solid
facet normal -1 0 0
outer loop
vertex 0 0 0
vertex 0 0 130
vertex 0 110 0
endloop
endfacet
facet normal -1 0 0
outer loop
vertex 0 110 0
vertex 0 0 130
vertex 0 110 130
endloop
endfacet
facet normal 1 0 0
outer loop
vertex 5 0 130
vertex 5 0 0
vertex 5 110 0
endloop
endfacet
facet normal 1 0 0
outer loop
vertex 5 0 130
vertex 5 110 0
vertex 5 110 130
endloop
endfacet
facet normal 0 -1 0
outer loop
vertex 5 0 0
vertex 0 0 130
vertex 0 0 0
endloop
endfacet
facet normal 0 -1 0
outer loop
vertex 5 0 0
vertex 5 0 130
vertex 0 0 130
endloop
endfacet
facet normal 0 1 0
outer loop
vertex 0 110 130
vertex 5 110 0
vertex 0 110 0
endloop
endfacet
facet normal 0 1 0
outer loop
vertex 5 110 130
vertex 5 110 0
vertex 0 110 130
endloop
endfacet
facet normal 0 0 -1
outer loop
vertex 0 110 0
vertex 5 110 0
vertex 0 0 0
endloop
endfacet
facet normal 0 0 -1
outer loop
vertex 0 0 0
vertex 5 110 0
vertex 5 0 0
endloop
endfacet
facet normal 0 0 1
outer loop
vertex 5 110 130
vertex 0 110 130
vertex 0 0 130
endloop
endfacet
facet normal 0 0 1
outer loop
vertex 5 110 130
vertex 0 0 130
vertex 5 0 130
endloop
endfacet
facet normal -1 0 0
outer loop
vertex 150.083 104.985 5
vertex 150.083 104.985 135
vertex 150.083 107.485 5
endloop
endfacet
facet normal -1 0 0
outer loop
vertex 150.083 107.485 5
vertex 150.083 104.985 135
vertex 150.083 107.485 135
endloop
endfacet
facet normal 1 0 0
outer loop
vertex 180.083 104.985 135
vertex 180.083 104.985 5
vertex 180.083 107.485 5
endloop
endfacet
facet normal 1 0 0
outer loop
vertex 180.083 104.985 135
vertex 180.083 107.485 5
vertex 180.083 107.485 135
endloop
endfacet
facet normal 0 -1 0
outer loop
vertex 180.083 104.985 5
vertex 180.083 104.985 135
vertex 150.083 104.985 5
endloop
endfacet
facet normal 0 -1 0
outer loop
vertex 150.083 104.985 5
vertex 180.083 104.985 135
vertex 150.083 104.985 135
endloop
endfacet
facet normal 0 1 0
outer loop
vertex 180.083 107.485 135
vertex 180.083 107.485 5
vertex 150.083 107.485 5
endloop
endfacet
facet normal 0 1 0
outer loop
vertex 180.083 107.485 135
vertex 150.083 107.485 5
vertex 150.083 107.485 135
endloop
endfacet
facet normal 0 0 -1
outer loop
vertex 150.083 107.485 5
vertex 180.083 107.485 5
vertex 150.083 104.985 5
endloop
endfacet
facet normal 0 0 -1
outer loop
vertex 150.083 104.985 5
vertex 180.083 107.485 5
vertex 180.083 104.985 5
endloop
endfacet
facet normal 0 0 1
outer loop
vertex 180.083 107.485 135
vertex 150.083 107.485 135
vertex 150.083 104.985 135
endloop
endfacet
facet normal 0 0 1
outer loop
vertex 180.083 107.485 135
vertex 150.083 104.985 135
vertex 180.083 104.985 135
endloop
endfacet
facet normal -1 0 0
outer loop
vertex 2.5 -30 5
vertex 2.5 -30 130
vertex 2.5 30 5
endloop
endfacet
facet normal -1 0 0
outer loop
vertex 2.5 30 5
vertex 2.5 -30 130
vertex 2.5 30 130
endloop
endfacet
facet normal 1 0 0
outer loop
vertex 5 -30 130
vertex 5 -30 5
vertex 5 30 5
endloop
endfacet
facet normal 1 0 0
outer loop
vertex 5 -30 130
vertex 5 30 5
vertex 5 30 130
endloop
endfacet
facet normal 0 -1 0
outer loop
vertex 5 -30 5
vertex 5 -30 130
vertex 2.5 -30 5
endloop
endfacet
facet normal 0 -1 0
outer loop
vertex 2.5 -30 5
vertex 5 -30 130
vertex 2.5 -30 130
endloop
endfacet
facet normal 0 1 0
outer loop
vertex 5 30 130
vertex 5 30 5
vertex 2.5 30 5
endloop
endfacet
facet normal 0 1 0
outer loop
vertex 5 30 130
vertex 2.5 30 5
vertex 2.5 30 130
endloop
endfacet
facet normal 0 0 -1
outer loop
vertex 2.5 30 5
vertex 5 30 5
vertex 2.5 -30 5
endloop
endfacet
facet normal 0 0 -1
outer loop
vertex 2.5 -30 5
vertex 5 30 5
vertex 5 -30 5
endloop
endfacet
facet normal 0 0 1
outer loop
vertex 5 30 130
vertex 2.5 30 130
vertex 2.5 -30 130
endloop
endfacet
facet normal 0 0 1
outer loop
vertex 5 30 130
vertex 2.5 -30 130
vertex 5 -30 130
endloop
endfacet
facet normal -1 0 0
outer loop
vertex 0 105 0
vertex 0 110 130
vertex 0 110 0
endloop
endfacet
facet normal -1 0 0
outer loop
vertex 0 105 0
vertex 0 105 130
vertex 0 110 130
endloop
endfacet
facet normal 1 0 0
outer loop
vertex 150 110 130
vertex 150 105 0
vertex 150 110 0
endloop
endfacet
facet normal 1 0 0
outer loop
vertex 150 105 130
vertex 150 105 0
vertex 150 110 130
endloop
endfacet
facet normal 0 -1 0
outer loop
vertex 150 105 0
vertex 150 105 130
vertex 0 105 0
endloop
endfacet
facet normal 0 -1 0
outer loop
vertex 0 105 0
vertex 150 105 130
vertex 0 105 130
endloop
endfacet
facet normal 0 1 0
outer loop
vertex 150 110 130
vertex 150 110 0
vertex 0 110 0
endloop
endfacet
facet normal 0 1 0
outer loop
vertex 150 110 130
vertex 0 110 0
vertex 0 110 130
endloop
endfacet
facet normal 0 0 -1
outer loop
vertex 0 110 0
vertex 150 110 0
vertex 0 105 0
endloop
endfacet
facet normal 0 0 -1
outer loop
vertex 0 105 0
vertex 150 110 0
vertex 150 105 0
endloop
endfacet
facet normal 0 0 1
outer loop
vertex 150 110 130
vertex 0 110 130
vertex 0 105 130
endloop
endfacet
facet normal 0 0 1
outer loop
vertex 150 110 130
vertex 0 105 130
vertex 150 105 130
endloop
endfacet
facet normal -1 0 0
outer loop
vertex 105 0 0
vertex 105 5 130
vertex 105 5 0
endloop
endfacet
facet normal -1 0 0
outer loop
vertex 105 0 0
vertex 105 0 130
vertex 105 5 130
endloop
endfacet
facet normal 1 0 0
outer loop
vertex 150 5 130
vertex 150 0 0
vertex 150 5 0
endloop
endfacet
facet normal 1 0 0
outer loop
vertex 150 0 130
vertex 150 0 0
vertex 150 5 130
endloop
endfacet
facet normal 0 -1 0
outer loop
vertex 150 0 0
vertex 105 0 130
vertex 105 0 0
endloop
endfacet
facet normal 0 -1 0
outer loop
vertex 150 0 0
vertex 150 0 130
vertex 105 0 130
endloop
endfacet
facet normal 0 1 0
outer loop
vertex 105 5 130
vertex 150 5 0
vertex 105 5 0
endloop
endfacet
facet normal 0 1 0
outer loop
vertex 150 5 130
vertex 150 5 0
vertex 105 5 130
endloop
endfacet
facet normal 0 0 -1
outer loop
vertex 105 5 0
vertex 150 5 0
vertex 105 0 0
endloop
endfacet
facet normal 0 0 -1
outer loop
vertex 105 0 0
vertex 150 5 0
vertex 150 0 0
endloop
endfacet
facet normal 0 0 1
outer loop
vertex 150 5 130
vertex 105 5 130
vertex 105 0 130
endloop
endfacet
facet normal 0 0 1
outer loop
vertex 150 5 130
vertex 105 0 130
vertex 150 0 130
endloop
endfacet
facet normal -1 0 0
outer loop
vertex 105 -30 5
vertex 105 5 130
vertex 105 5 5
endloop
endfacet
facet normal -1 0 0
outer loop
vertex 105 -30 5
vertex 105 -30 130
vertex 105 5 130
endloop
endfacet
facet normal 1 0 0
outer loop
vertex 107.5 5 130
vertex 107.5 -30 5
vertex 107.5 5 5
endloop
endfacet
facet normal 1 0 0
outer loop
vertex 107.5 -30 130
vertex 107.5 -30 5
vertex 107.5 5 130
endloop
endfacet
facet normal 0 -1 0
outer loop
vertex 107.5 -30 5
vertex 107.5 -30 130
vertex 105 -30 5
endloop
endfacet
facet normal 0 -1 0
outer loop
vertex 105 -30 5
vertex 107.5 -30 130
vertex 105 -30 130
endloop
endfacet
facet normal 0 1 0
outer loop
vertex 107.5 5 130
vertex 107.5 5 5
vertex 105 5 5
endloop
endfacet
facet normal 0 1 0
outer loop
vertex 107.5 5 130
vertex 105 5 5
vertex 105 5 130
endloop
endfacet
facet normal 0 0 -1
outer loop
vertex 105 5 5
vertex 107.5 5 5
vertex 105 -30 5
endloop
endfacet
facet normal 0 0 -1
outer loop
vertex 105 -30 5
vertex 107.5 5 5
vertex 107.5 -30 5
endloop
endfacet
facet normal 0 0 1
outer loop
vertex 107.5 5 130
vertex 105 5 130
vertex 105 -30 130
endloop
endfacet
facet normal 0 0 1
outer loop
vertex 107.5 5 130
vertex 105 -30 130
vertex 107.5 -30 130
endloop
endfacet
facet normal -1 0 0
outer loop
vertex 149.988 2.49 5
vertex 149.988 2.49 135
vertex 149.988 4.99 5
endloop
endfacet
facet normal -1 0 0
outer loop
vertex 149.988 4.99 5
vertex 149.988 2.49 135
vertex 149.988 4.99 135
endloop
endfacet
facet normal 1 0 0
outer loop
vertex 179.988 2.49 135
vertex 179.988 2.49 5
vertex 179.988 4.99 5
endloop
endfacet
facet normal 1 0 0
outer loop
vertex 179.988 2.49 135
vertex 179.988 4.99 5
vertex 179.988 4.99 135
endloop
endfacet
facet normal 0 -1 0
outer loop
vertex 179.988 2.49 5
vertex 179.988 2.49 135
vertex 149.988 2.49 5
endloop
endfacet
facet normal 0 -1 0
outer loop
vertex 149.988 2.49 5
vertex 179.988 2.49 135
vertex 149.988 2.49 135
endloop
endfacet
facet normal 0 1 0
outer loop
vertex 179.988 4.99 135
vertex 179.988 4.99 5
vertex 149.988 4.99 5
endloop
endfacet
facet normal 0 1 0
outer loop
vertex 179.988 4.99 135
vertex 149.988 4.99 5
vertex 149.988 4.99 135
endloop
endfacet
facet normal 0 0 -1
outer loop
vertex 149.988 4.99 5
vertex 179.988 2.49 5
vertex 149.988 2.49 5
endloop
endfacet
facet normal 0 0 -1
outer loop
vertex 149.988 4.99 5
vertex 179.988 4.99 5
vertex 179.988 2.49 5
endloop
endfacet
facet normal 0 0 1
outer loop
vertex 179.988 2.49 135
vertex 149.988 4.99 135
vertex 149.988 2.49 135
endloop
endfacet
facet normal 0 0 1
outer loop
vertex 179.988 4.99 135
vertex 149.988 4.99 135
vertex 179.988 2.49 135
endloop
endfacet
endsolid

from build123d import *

# Parameters (mm, degrees)
BOX010_W     = 2.5
BOX010_H     = 35
BOX010_DEPTH = 125
BOX009_W     = 2.5
BOX009_H     = 60
BOX009_DEPTH = 125
BOX004_W     = 5
BOX004_H     = 110
BOX004_DEPTH = 130
BOX002_W     = 150
BOX002_H     = 5
BOX002_DEPTH = 130
BOX003_W     = 45
BOX003_H     = 5
BOX003_DEPTH = 130
BOX006_W     = 30
BOX006_H     = 2.5
BOX006_DEPTH = 130
BOX007_W     = 30
BOX007_H     = 2.5
BOX007_DEPTH = 130


with BuildPart() as cube010:
    # Box010 → Box010 (new body)
    with BuildSketch(Plane(origin=(105, -30, 5), x_dir=(1, 0, 0), z_dir=(0, 0, 1))):
        with Locations((1.25, 17.5)):
            Rectangle(BOX010_W, BOX010_H)
    extrude(amount=BOX010_DEPTH)


with BuildPart() as cube009:
    # Box009 → Box009 (new body)
    with BuildSketch(Plane(origin=(2.5, -30, 5), x_dir=(1, 0, 0), z_dir=(0, 0, 1))):
        with Locations((1.25, 30)):
            Rectangle(BOX009_W, BOX009_H)
    extrude(amount=BOX009_DEPTH)


with BuildPart() as cube004:
    # Box004 → Box004 (new body)
    with BuildSketch(Plane.XY):
        with Locations((2.5, 55)):
            Rectangle(BOX004_W, BOX004_H)
    extrude(amount=BOX004_DEPTH)


with BuildPart() as cube002:
    # Box002 → Box002 (new body)
    with BuildSketch(Plane(origin=(0, 105, 0), x_dir=(1, 0, 0), z_dir=(0, 0, 1))):
        with Locations((75, 2.5)):
            Rectangle(BOX002_W, BOX002_H)
    extrude(amount=BOX002_DEPTH)


with BuildPart() as cube003:
    # Box003 → Box003 (new body)
    with BuildSketch(Plane(origin=(105, 0, 0), x_dir=(1, 0, 0), z_dir=(0, 0, 1))):
        with Locations((22.5, 2.5)):
            Rectangle(BOX003_W, BOX003_H)
    extrude(amount=BOX003_DEPTH)


with BuildPart() as cube006:
    # Box006 → Box006 (new body)
    with BuildSketch(Plane(origin=(149.988329, 2.490229, 5), x_dir=(1, 0, 0), z_dir=(0, 0, 1))):
        with Locations((15, 1.25)):
            Rectangle(BOX006_W, BOX006_H)
    extrude(amount=BOX006_DEPTH)


with BuildPart() as cube007:
    # Box007 → Box007 (new body)
    with BuildSketch(Plane(origin=(150.083035, 104.985423, 5), x_dir=(1, 0, 0), z_dir=(0, 0, 1))):
        with Locations((15, 1.25)):
            Rectangle(BOX007_W, BOX007_H)
    extrude(amount=BOX007_DEPTH)


solid = Compound([cube010.part, cube009.part, cube004.part, cube002.part, cube003.part, cube006.part, cube007.part])
